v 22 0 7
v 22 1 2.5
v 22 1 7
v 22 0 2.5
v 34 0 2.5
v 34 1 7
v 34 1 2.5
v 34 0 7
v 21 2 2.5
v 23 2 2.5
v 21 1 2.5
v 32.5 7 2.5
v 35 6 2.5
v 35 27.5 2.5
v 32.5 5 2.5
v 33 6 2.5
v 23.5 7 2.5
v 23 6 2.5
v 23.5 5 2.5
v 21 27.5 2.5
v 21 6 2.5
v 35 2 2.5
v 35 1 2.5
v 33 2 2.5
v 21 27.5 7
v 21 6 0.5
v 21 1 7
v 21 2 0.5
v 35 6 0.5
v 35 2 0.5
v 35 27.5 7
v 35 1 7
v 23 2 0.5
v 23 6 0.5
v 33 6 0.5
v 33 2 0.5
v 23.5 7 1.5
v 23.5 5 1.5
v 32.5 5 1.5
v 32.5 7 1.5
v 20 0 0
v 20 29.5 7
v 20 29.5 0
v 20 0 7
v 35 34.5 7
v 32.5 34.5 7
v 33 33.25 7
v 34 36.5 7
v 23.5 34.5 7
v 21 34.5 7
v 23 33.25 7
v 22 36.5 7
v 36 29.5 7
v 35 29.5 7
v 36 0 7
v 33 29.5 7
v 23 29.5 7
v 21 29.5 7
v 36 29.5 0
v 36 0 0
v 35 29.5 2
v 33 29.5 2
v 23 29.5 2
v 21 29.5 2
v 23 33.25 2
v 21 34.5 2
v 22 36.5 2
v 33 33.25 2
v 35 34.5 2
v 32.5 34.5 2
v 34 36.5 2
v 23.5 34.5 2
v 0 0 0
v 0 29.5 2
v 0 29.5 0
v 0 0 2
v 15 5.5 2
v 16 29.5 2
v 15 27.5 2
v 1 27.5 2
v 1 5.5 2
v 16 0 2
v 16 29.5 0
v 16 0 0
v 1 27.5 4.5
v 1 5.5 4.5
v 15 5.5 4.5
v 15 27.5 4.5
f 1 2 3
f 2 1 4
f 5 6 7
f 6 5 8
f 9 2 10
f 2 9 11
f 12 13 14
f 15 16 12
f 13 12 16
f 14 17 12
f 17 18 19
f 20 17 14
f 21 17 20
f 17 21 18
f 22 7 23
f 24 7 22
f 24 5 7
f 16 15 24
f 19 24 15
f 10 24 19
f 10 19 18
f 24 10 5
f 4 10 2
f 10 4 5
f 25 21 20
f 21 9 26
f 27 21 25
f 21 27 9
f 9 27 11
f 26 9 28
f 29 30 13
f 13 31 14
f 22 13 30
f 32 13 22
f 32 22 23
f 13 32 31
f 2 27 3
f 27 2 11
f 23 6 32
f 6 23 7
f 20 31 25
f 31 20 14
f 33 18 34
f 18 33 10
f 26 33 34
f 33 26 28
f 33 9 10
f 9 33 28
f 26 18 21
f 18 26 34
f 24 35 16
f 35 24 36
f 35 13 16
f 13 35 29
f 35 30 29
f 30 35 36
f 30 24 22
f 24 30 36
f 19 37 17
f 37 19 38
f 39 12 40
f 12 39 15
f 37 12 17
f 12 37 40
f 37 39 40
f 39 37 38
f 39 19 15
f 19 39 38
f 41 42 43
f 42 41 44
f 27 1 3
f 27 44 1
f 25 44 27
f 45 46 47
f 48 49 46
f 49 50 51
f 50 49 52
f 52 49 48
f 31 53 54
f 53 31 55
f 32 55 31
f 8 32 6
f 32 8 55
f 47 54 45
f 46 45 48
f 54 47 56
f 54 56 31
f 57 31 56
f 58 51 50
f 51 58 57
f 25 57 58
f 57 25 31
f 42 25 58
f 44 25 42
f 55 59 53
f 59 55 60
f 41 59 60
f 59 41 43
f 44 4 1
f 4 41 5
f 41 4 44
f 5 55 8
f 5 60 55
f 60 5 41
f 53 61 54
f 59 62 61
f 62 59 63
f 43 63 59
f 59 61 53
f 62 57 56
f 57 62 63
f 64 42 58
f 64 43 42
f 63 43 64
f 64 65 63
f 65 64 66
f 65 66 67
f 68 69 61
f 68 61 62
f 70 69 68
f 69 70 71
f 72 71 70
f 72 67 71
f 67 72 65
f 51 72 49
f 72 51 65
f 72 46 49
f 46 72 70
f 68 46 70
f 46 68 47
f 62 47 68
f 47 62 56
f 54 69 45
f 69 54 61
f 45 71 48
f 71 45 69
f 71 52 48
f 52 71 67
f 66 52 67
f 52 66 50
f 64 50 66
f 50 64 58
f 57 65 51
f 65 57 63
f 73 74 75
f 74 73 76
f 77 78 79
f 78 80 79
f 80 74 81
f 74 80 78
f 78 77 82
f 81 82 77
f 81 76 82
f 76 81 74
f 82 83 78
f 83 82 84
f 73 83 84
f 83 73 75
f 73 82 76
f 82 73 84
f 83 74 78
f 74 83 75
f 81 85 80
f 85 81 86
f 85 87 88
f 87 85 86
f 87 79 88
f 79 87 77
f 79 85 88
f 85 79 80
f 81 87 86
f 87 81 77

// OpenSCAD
module bottom() {
    union() {
        difference() {
            cube([16, 29.5, 7], false);
            union() {
                translate([2, -1, 2.5])
                    cube([12, 5, 5], false);
                translate([1, 1, 2.5])
                    cube([14, 26.5, 5], false);
                translate([1, 2, 0.5])
                    cube([2, 4, 2.5], false);
                translate([13, 2, 0.5])
                    cube([2, 4, 2.5], false);
                translate([3.5, 5, 1.5])
                    cube([9, 2, 1.5], false);
            }
        }
        translate([1, 29.5, 2])
            linear_extrude(height=5, center=false) {
                polygon([[0, 0], [0, 5], [1, 7], [13, 7], [14, 5], [14, 0], [12, 0], [12, 3.75], [11.5, 5], [2.5, 5], [2, 3.75], [2, 0]]);
            }
    }
}

module top() {
    union() {
        cube([16, 29.5, 2], false);
        translate([1, 5.5, 2])
                cube([14, 22, 2.5], false);
        translate([0, 29.5, 0])
            difference() {
                
            }
    }
}

translate([20, 0, 0])
    bottom();

top();
